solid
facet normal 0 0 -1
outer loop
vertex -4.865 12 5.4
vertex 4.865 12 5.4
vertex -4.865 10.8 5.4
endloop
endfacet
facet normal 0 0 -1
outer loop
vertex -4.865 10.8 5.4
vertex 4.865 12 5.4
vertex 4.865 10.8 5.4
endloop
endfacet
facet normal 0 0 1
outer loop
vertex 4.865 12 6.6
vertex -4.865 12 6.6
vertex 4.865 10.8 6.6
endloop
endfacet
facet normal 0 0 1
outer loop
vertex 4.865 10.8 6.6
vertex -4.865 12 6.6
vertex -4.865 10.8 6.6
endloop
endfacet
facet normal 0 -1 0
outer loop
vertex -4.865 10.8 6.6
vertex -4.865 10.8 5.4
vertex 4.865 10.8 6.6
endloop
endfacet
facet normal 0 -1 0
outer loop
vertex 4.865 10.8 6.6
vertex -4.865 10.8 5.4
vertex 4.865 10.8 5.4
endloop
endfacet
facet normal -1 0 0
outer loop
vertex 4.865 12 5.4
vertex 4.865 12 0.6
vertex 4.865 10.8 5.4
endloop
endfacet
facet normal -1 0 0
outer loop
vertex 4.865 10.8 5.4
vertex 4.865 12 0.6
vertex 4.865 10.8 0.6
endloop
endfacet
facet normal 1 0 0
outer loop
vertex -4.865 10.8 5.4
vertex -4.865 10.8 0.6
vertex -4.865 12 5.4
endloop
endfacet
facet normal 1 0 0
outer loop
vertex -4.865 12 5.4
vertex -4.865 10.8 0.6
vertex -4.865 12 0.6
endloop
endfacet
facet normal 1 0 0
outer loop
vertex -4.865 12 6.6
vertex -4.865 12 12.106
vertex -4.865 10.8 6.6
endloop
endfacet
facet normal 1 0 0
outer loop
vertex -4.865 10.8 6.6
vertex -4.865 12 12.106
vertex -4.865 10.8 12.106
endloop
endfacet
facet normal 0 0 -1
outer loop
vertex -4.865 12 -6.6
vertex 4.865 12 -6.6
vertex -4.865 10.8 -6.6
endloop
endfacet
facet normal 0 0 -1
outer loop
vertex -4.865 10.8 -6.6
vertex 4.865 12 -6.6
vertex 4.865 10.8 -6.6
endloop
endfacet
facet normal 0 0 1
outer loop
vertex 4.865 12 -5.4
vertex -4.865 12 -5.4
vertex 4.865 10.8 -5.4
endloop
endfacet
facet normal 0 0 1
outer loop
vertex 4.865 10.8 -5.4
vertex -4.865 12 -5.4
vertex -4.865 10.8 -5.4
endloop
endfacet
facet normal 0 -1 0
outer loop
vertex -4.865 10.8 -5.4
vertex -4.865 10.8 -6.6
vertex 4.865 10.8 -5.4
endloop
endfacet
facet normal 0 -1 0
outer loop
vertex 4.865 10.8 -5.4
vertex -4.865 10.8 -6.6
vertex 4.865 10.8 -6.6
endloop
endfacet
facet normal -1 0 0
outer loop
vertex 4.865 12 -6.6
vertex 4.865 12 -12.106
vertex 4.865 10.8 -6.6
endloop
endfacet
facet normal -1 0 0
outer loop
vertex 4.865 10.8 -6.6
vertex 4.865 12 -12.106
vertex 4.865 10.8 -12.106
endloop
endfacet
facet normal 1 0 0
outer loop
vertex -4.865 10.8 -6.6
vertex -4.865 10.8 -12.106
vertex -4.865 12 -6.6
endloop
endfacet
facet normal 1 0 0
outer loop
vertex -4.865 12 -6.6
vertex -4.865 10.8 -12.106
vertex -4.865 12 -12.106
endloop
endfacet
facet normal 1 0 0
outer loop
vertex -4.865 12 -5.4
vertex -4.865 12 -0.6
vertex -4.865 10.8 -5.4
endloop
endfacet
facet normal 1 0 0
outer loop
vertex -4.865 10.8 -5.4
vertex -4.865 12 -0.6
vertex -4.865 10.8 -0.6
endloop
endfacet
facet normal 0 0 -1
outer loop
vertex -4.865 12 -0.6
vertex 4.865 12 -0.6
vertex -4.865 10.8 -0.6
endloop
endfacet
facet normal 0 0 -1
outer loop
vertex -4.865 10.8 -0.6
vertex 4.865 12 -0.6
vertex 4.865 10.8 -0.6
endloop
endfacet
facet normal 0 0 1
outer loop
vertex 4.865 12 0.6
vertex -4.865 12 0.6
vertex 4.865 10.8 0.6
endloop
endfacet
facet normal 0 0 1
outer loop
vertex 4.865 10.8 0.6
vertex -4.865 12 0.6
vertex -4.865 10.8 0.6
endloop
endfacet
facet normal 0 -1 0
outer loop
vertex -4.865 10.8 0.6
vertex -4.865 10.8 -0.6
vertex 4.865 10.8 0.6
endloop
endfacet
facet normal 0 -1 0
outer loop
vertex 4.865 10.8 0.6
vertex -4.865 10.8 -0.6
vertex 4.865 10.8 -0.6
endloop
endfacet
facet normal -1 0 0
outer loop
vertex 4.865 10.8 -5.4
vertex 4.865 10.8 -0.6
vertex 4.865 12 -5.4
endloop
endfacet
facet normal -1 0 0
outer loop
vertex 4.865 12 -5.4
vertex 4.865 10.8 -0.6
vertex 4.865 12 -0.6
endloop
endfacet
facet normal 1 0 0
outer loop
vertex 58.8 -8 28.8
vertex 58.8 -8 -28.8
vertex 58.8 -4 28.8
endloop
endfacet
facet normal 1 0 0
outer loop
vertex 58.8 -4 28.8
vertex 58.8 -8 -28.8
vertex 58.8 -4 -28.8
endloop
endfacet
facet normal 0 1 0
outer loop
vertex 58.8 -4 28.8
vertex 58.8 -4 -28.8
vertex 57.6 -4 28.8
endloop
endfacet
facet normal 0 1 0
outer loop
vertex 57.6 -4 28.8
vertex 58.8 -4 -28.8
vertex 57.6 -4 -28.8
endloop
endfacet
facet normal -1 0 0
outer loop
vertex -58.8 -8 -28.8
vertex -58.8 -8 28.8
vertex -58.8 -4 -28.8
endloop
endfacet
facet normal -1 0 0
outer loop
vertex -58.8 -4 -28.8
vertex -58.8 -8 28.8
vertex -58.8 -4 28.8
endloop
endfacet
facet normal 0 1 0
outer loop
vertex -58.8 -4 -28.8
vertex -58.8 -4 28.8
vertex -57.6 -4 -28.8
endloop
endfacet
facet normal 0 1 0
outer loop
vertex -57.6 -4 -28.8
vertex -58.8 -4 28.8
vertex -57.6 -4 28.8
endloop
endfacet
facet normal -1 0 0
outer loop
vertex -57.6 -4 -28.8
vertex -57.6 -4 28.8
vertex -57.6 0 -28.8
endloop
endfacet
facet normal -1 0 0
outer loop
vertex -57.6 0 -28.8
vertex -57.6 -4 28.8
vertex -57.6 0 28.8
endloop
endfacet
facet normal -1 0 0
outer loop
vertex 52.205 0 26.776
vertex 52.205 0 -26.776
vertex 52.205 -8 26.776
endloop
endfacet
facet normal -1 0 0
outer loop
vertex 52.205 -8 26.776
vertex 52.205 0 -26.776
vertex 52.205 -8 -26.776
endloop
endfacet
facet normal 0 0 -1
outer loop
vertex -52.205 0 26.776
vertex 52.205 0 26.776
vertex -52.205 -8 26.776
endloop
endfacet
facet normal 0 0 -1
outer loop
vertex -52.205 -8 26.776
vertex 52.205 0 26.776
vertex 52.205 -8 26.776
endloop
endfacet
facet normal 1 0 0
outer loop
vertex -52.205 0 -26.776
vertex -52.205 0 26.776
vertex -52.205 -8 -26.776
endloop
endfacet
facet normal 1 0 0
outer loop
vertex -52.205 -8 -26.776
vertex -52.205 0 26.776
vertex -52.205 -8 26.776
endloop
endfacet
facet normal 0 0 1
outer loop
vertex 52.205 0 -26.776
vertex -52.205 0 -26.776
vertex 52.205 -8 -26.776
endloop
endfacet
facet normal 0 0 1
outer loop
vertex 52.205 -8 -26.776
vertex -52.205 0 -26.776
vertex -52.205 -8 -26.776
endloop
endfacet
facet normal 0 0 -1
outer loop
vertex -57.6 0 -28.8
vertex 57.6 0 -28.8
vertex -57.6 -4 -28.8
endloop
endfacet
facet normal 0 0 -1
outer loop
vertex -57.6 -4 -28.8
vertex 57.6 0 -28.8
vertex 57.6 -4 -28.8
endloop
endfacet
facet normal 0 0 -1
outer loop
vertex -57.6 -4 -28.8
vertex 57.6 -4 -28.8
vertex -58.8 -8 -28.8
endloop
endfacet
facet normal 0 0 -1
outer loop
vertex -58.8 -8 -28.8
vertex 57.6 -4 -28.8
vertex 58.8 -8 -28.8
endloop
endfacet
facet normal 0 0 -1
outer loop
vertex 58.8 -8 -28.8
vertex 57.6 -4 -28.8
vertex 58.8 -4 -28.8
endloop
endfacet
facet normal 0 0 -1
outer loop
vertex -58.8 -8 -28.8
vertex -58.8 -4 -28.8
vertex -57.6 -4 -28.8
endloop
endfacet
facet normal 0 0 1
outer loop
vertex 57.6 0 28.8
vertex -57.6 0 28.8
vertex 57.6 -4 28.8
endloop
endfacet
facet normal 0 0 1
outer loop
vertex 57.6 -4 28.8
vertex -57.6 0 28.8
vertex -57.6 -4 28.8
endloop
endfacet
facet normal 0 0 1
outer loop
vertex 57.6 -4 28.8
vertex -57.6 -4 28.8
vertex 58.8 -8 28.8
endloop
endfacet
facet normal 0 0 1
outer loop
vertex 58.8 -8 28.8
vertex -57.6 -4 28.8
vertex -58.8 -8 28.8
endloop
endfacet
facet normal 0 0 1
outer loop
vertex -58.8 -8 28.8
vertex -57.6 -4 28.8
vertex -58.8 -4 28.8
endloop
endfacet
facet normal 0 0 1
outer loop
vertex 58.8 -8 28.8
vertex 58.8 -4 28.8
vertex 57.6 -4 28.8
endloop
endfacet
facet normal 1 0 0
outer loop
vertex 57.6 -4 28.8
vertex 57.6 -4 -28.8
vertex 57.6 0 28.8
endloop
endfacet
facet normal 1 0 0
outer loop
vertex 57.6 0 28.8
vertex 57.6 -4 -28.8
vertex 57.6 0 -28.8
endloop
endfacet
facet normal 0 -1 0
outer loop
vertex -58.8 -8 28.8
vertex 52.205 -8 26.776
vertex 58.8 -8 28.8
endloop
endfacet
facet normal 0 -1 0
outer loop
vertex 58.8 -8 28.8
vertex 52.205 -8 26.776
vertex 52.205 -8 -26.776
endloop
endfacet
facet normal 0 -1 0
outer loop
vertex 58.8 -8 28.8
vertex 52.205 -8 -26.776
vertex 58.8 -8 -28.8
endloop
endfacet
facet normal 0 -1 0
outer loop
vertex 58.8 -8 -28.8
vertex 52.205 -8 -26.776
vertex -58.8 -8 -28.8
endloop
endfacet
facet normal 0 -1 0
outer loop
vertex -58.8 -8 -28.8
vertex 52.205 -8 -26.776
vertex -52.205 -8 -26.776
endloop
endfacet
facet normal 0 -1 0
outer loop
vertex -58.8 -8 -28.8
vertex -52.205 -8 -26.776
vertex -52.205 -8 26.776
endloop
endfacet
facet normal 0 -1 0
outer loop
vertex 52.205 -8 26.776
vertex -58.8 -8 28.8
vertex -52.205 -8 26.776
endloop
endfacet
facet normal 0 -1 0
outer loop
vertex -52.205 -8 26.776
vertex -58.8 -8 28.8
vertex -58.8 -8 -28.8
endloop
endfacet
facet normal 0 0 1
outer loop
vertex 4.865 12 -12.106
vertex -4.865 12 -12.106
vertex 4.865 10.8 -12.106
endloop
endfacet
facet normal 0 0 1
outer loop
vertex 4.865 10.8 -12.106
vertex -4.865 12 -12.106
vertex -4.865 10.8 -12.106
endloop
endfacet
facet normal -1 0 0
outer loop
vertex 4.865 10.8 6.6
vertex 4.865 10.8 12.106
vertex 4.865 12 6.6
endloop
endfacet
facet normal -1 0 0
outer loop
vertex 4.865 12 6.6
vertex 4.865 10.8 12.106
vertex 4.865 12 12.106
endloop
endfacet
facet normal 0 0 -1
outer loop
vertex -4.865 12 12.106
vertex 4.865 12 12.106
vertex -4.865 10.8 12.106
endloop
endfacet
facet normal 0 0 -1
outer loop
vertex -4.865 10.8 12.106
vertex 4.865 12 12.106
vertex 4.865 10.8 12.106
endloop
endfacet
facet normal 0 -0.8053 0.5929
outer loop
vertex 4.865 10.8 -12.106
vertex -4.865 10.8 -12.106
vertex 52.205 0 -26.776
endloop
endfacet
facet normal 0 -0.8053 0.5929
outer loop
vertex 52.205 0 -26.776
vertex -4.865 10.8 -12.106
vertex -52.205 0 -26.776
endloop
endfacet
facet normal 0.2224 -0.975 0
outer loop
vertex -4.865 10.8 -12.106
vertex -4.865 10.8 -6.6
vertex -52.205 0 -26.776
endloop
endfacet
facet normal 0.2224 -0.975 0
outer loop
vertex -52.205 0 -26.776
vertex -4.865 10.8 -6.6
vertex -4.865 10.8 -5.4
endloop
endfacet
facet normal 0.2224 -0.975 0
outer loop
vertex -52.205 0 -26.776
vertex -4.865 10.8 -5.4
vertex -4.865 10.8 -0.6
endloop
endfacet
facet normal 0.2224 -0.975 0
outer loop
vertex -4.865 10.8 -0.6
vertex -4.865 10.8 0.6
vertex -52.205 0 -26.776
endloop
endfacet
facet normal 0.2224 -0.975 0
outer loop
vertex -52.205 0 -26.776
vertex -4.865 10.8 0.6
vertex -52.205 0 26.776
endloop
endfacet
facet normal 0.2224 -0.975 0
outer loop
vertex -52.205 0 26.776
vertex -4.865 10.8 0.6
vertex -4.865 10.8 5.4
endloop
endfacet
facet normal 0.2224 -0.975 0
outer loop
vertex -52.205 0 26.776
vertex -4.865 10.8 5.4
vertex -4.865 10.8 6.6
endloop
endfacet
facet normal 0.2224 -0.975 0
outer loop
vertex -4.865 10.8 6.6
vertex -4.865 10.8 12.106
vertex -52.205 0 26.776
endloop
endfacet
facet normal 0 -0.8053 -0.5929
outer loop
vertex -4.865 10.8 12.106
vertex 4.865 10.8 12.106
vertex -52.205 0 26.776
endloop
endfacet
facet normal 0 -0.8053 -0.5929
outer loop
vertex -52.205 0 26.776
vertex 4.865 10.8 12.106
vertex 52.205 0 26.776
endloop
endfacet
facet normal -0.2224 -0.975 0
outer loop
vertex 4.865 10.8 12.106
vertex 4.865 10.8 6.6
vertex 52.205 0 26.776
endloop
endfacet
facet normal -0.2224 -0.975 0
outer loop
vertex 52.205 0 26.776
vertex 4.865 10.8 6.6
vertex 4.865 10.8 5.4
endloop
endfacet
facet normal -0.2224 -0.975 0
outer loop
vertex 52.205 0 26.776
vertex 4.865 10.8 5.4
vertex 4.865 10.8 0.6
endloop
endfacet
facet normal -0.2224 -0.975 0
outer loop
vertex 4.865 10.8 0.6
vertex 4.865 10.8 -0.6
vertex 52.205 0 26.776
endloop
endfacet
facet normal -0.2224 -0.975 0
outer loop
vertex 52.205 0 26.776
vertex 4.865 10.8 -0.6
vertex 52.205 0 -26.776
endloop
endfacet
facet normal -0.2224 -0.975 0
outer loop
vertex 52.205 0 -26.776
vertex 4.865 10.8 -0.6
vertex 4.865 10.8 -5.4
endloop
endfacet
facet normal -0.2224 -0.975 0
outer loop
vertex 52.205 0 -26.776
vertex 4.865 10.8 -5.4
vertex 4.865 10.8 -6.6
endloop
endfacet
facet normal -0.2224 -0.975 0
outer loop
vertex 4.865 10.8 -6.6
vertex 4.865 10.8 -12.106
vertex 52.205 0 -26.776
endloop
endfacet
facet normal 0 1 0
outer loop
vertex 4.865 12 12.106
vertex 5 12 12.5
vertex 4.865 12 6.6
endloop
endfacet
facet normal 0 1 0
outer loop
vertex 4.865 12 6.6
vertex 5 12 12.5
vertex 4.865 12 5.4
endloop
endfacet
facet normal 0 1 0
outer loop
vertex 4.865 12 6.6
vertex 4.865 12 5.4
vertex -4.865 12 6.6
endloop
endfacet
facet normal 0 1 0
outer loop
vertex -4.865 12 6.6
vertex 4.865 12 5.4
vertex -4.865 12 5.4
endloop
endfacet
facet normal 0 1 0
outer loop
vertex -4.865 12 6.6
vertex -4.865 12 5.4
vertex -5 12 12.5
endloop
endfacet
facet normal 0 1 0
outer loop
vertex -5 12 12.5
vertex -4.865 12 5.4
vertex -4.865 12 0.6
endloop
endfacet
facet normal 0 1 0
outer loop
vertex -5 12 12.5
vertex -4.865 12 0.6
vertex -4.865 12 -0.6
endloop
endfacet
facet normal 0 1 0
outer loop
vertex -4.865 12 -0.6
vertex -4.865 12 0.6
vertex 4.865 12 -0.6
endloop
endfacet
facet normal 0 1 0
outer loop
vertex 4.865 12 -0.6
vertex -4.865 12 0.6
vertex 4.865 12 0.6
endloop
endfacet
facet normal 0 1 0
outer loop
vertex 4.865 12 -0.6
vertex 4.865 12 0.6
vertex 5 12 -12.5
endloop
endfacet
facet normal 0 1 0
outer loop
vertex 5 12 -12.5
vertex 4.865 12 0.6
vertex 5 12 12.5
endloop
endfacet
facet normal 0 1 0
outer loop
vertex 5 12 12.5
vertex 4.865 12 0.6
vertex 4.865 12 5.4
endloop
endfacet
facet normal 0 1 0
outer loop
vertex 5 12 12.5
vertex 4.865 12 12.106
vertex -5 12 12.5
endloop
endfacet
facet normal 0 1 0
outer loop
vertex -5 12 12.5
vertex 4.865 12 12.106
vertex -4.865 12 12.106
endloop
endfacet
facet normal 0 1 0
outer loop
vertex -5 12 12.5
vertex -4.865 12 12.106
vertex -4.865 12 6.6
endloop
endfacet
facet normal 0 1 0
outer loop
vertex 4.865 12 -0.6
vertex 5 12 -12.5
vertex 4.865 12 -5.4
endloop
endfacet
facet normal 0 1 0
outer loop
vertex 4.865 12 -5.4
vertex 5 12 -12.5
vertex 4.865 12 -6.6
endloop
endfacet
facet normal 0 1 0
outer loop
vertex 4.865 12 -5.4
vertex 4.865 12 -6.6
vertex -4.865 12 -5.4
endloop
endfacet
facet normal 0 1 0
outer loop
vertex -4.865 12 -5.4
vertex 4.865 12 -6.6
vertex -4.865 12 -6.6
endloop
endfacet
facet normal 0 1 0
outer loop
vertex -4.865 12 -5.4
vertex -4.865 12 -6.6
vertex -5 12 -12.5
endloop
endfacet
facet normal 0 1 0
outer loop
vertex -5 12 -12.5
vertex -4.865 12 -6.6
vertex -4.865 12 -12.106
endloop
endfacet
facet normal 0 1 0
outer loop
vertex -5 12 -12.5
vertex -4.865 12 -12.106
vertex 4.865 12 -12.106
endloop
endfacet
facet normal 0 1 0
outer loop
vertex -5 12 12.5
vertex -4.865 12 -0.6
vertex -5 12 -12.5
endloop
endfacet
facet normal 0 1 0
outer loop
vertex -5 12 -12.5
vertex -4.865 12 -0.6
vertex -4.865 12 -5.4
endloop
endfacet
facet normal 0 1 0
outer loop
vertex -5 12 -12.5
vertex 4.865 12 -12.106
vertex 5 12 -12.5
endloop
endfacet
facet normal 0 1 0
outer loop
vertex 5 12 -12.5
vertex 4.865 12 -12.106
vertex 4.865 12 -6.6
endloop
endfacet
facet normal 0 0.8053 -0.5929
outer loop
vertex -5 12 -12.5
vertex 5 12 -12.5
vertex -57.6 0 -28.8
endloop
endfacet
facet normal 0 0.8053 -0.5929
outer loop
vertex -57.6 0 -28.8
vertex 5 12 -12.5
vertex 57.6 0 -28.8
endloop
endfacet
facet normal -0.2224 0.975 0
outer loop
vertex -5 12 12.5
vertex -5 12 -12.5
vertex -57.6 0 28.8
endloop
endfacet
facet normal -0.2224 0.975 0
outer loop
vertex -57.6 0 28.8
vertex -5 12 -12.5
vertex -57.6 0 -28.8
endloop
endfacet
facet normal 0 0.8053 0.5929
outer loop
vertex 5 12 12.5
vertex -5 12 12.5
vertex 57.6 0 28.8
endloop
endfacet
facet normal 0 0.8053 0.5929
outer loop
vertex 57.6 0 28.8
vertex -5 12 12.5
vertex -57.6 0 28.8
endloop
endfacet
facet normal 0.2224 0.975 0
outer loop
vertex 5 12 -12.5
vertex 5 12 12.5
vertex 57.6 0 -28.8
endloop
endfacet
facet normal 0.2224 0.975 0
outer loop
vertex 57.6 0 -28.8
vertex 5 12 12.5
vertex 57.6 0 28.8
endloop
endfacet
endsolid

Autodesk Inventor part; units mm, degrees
ref_plane "YZ Plane" through (0, 0, 0) normal (1, 0, 0) x (0, 1, 0)
ref_plane "XY Plane" through (0, 0, 0) normal (0, 0, 1) x (1, 0, 0)
sketch "Szkic1" plane through (0, 0, 0) normal (0, 1, 0) x (-1, 0, 0)
  line L0 (57.6, -28.8) -> (-57.6, -28.8)
  line L1 (-57.6, -28.8) -> (-57.6, 28.8)
  line L2 (-57.6, 28.8) -> (57.6, 28.8)
  line L3 (57.6, 28.8) -> (57.6, -28.8)
  line L4 (57.6, -28.8) -> (-57.6, 28.8) construction
  line L5 (-57.6, -28.8) -> (57.6, 28.8) construction
  point P0 (0, 0)
  dimension "d0" = 115.2
  dimension "d1" = 57.6
ref_plane "Płaszczyzna konstrukcyjna3" through (0, 12, 0) normal (0, 1, 0) x (-1, 0, 0)
sketch "Szkic11" plane through (0, 12, 0) normal (0, 1, 0) x (-1, 0, 0)
  line L0 (-5, -12.5) -> (5, -12.5)
  line L1 (5, -12.5) -> (5, 12.5)
  line L2 (5, 12.5) -> (-5, 12.5)
  line L3 (-5, 12.5) -> (-5, -12.5)
  line L4 (-5, -12.5) -> (5, 12.5) construction
  line L5 (5, -12.5) -> (-5, 12.5) construction
  point P0 (0, 0)
  dimension "d41" = 10
  dimension "d42" = 25
loft "Wyciągnięcie złożone3" add profiles "Szkic11", "Szkic1"
shell "Skorupa3" thickness 1.2 removed faces 1 at (-19.2, 0, 9.6)
sketch "Szkic12" plane through (-4.8649, 10.8, -12.1059) normal (0, -1, 0) x (1, 0, 0)
  line L0 (0, 0) -> (0, 24.2118) projected
  line L1 (9.7297, 0) -> (57.0697, -14.67) projected
  line L2 (0, 24.2118) -> (9.7297, 24.2118)
  line L3 (9.7297, 24.2118) -> (9.7297, 0)
  line L4 (9.7297, 0) -> (0, 0)
  line L5 (0, 0) -> (0, 24.2118)
  point P0 (4.8649, 12.1059)
extrude "Wyciągnięcie proste7" cut sketch "Szkic12" against normal blind 10
sketch "Szkic13" plane through (-57.6, 0, -28.8) normal (0, -1, 0) x (1, 0, 0)
  line L0 (115.2, 57.6) -> (115.2, 0) projected
  line L1 (52.6, 16.3) -> (0, 0) projected
  line L2 (115.2, 57.6) -> (0, 57.6)
  line L3 (0, 57.6) -> (0, 0)
  line L4 (0, 0) -> (115.2, 0)
  line L5 (115.2, 0) -> (115.2, 57.6)
  line L6 (5.3951, 55.5759) -> (109.8049, 55.5759) projected
  line L7 (109.8049, 2.0241) -> (5.3951, 2.0241) projected
  line L8 (109.8049, 55.5759) -> (5.3951, 55.5759)
  line L9 (5.3951, 55.5759) -> (5.3951, 2.0241)
  line L10 (5.3951, 2.0241) -> (109.8049, 2.0241)
  line L11 (109.8049, 2.0241) -> (109.8049, 55.5759)
  point P0 (57.6, 28.8)
extrude "Wyciągnięcie proste8" add sketch "Szkic13" along normal blind 8
sketch "Szkic14" plane through (-57.6, -8, -28.8) normal (0, -1, 0) x (1, 0, 0)
  line L0 (115.2, 57.6) -> (0, 57.6) projected
  line L1 (115.2, 0) -> (0, 0)
  line L2 (0, 0) -> (0, 57.6)
  line L3 (0, 57.6) -> (115.2, 57.6)
  line L4 (115.2, 57.6) -> (115.2, 0)
  line L5 (115.2, 0) -> (0, 57.6) construction
  line L6 (0, 0) -> (115.2, 57.6) construction
  line L7 (116.4, 0) -> (-1.2, 0)
  line L8 (-1.2, 0) -> (-1.2, 57.6)
  line L9 (-1.2, 57.6) -> (116.4, 57.6)
  line L10 (116.4, 57.6) -> (116.4, 0)
  line L11 (116.4, 0) -> (-1.2, 57.6) construction
  line L12 (-1.2, 0) -> (116.4, 57.6) construction
  point P0 (57.6, 28.8)
  dimension "d52" = 117.6
extrude "Wyciągnięcie proste9" add sketch "Szkic14" against normal blind 4 contours L9 L10 L7 L4 | L2 L7 L8 L9
sketch "Szkic15" plane through (-5, 12, -12.5) normal (0, 1, 0) x (1, 0, 0)
  line L0 (9.8649, -24.6059) -> (9.8649, -0.3941) projected
  line L1 (0.1351, -13.1) -> (9.8649, -13.1)
  line L2 (9.8649, -13.1) -> (9.8649, -11.9)
  line L3 (9.8649, -11.9) -> (0.1351, -11.9)
  line L4 (0.1351, -11.9) -> (0.1351, -13.1)
  line L5 (0.1351, -13.1) -> (9.8649, -11.9) construction
  line L6 (9.8649, -13.1) -> (0.1351, -11.9) construction
  point P0 (5, -12.5)
  dimension "d55" = 1.2
extrude "Wyciągnięcie proste10" add sketch "Szkic15" against normal blind 1.2
pattern_linear "Szyk prostokątny3" count 2 spacing 6 along (0, 0, -1) of "Wyciągnięcie proste10"
pattern_linear "Szyk prostokątny4" count 2 spacing 6 along (0, 0, 1) of "Wyciągnięcie proste10"
properties part number "lejek"
